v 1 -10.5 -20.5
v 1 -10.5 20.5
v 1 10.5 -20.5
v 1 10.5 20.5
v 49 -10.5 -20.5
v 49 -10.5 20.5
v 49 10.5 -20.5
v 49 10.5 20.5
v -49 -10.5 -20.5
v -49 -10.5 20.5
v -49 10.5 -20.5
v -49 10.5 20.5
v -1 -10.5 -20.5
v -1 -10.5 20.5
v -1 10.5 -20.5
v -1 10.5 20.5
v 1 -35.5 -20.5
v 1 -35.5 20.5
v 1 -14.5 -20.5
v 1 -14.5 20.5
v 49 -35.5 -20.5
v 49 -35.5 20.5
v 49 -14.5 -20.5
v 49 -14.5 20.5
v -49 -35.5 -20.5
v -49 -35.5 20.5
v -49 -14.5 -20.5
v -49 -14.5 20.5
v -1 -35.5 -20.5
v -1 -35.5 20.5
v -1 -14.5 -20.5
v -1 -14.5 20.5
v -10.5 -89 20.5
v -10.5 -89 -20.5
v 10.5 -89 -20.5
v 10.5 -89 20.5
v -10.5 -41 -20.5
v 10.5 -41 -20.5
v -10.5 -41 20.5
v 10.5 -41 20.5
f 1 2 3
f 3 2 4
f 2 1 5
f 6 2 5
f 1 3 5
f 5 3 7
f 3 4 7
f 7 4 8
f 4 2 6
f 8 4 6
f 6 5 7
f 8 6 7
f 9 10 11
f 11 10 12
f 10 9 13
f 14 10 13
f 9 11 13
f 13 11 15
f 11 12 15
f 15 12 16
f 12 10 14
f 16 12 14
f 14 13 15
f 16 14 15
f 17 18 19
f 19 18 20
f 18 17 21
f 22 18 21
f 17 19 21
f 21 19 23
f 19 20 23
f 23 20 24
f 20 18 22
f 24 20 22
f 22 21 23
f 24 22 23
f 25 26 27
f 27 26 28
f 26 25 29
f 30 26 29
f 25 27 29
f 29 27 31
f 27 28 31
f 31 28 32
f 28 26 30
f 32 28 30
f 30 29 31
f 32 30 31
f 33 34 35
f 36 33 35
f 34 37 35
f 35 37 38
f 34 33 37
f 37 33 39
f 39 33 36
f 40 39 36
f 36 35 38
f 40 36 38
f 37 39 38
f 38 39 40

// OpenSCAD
//Posiciones de los motores//

translate([0,0,0])
color([0,1,0])
union(){
	translate([25,0,0])
	cube([48,21,41], center=true);
	translate([-25,0,0])
	cube([48,21,41], center=true);
	translate([25,-25,0])
	cube([48,21,41], center=true);
	translate([-25,-25,0])
	cube([48,21,41], center=true);
	translate([0,-65,0])
	rotate([0,0,90])
	cube([48,21,41], center=true);
}
